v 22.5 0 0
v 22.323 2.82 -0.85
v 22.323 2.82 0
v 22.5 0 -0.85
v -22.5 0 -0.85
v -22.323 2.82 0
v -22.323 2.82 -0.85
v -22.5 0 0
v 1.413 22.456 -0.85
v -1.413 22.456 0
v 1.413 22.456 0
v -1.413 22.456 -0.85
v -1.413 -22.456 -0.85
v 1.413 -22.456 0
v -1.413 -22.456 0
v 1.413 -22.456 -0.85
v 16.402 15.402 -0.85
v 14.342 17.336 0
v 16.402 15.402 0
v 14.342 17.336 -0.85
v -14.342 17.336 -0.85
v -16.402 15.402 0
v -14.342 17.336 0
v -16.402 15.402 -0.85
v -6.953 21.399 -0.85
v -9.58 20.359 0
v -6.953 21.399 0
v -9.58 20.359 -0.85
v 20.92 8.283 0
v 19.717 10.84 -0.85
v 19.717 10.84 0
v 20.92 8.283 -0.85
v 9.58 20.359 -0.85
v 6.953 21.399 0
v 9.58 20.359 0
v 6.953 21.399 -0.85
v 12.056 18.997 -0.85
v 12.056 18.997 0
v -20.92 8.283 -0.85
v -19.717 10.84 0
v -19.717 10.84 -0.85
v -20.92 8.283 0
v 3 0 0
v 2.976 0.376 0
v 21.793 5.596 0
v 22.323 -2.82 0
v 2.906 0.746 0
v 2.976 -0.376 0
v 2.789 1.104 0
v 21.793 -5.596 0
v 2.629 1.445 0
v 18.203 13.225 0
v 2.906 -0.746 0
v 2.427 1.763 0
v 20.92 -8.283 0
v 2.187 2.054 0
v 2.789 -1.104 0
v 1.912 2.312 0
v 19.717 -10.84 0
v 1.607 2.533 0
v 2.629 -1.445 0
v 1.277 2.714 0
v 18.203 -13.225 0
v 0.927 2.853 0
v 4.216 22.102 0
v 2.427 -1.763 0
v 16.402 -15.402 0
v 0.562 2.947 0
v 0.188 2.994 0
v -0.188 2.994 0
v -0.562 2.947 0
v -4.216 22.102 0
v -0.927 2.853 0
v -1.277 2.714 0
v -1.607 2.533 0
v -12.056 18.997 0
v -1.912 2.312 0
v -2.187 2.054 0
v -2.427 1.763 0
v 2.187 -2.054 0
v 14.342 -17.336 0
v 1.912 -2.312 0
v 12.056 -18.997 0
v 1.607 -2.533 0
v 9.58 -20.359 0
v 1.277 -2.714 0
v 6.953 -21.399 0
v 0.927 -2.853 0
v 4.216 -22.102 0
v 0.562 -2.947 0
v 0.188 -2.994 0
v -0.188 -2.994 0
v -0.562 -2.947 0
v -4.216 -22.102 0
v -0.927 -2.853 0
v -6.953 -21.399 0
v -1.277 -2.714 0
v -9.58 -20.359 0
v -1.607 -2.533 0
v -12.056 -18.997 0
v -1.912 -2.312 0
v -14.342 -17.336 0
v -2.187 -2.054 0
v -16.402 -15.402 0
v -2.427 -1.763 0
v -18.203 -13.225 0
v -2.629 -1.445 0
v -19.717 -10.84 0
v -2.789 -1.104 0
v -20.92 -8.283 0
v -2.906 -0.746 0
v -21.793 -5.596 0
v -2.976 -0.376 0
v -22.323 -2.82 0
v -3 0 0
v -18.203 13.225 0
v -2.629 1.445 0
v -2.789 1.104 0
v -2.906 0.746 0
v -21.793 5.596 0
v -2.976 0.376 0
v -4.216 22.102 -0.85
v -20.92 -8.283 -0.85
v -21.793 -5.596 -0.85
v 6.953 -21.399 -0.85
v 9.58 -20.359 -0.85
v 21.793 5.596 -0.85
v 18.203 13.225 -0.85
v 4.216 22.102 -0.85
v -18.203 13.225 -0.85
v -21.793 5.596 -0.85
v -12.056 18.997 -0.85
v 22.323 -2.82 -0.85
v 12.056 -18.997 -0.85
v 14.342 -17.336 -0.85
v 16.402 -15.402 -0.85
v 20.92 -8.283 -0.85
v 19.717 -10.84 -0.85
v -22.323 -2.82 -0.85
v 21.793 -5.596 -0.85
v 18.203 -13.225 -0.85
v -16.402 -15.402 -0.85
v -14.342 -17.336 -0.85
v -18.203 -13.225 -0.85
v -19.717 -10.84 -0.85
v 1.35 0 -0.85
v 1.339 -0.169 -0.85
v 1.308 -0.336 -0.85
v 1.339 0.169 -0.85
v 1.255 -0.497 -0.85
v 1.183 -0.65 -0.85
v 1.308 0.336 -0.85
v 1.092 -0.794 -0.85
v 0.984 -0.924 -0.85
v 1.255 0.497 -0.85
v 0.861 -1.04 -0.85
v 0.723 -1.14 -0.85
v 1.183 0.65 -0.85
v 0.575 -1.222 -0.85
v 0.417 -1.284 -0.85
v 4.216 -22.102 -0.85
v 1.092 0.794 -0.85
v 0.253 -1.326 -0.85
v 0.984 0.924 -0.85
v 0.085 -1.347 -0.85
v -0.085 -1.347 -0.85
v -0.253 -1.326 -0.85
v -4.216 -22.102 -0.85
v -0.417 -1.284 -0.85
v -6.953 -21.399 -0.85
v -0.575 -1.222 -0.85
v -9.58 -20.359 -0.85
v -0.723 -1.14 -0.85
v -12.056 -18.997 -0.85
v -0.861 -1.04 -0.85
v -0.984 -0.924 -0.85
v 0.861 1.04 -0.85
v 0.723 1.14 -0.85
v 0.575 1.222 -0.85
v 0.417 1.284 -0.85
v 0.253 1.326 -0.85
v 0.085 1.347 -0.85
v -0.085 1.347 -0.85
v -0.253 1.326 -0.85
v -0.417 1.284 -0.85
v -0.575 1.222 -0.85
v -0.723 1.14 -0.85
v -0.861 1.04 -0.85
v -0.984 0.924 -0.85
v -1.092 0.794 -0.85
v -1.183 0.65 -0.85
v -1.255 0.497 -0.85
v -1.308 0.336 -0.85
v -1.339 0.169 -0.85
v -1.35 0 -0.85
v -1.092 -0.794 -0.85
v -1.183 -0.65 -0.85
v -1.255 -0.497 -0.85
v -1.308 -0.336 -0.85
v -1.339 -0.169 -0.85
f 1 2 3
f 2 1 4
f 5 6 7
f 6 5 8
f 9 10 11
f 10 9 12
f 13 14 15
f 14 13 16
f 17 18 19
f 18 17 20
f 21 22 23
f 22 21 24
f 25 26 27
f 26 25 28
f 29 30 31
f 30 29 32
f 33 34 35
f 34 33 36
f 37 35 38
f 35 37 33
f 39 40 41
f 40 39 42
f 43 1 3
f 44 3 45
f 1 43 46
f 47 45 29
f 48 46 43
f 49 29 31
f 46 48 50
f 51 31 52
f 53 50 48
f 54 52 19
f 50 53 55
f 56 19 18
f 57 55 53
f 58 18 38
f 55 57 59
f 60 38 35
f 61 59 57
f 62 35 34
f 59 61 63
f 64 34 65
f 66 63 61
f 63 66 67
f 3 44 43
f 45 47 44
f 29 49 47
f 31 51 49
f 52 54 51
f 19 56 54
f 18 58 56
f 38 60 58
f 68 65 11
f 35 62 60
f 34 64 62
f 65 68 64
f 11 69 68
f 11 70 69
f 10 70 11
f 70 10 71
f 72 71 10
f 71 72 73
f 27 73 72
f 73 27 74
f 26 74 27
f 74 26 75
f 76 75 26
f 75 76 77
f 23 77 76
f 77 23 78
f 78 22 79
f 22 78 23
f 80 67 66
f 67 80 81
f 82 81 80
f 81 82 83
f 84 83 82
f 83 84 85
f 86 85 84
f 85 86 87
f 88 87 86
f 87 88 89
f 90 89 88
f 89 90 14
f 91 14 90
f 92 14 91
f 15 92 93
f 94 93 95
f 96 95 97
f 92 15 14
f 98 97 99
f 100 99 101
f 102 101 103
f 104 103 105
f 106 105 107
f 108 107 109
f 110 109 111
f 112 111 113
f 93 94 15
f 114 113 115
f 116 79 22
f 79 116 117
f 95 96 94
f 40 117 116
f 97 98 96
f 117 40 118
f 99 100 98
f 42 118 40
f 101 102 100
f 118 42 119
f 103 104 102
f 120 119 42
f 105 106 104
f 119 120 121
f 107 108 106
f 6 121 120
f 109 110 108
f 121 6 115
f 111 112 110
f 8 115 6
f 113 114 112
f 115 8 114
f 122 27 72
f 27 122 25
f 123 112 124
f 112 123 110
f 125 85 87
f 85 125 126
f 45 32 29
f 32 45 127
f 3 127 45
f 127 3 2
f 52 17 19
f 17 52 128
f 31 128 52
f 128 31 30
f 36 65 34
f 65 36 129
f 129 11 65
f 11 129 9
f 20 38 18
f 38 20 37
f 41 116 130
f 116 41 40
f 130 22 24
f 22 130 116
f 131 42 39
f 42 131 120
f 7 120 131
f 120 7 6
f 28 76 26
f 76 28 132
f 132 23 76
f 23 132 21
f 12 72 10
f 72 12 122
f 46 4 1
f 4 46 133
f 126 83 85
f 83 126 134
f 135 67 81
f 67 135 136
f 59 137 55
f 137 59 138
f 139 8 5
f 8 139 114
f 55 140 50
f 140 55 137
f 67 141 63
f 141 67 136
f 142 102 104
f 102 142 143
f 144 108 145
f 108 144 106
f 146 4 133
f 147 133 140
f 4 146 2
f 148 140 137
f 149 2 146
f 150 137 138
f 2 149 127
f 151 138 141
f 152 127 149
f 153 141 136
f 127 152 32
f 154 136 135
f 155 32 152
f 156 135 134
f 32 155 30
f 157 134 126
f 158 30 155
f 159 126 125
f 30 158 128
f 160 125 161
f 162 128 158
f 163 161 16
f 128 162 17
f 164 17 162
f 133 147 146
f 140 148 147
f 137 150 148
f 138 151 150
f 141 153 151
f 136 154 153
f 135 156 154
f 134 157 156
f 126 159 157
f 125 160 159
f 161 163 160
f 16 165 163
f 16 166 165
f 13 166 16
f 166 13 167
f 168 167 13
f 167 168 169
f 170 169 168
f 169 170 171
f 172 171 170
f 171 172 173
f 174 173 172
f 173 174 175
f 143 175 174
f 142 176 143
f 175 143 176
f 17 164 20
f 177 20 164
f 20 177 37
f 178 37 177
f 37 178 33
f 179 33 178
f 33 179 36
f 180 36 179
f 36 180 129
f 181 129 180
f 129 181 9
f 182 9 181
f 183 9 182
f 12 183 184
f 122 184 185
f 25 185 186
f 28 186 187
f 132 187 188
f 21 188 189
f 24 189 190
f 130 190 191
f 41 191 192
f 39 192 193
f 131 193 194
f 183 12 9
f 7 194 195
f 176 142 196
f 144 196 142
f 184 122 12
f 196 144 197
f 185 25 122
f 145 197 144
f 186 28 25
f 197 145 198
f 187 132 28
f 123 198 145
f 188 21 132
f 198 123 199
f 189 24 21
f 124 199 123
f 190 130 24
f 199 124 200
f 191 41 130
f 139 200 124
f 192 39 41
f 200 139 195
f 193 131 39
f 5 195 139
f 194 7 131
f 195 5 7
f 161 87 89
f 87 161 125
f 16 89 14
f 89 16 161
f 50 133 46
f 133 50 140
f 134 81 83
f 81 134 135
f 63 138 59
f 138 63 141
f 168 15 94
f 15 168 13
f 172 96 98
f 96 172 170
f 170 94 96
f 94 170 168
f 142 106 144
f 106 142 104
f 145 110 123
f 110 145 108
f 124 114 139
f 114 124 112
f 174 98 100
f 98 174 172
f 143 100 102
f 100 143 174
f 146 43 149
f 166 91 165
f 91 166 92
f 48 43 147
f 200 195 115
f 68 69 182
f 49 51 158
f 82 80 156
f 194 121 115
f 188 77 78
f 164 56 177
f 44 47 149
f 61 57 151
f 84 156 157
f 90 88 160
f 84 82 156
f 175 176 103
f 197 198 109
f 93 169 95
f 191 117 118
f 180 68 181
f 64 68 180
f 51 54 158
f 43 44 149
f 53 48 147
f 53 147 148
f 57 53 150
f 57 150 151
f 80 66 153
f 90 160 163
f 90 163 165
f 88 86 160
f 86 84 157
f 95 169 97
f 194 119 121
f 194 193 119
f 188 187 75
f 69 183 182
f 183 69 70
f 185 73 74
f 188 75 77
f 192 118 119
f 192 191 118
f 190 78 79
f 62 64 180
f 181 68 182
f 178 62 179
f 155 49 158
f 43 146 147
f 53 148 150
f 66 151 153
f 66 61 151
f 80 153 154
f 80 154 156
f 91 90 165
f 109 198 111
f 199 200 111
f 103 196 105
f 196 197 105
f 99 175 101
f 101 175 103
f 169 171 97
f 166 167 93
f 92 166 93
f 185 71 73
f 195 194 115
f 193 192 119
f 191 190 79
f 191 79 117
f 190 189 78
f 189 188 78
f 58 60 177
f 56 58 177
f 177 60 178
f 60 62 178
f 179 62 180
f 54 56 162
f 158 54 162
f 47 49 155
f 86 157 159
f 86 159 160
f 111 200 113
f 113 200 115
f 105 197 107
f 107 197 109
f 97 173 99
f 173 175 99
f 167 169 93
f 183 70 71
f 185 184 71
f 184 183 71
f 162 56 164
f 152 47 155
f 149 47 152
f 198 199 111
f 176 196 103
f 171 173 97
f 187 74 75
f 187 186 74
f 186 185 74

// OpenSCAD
$fn = 50;


difference() {
	union() {
		translate(v = [0, 0, -0.8500000000]) {
			cylinder(h = 0.8500000000, r = 22.5000000000);
		}
		translate(v = [0, 0, -0.8500000000]) {
			cylinder(h = 0.8500000000, r = 2.8750000000);
		}
	}
	union() {
		translate(v = [0, 0, 0]) {
			rotate(a = [0, 0, 0]) {
				difference() {
					union() {
						translate(v = [0, 0, -0.8500000000]) {
							cylinder(h = 0.8500000000, r = 1.0000000000);
						}
						translate(v = [0, 0, -0.8500000000]) {
							cylinder(h = 0.8500000000, r1 = 1.3500000000, r2 = 3.0000000000);
						}
						translate(v = [0, 0, -0.8500000000]) {
							cylinder(h = 0.8500000000, r = 1.3500000000);
						}
						translate(v = [0, 0, -0.8500000000]) {
							cylinder(h = 0.8500000000, r = 1.0000000000);
						}
					}
					union();
				}
			}
		}
	}
}
